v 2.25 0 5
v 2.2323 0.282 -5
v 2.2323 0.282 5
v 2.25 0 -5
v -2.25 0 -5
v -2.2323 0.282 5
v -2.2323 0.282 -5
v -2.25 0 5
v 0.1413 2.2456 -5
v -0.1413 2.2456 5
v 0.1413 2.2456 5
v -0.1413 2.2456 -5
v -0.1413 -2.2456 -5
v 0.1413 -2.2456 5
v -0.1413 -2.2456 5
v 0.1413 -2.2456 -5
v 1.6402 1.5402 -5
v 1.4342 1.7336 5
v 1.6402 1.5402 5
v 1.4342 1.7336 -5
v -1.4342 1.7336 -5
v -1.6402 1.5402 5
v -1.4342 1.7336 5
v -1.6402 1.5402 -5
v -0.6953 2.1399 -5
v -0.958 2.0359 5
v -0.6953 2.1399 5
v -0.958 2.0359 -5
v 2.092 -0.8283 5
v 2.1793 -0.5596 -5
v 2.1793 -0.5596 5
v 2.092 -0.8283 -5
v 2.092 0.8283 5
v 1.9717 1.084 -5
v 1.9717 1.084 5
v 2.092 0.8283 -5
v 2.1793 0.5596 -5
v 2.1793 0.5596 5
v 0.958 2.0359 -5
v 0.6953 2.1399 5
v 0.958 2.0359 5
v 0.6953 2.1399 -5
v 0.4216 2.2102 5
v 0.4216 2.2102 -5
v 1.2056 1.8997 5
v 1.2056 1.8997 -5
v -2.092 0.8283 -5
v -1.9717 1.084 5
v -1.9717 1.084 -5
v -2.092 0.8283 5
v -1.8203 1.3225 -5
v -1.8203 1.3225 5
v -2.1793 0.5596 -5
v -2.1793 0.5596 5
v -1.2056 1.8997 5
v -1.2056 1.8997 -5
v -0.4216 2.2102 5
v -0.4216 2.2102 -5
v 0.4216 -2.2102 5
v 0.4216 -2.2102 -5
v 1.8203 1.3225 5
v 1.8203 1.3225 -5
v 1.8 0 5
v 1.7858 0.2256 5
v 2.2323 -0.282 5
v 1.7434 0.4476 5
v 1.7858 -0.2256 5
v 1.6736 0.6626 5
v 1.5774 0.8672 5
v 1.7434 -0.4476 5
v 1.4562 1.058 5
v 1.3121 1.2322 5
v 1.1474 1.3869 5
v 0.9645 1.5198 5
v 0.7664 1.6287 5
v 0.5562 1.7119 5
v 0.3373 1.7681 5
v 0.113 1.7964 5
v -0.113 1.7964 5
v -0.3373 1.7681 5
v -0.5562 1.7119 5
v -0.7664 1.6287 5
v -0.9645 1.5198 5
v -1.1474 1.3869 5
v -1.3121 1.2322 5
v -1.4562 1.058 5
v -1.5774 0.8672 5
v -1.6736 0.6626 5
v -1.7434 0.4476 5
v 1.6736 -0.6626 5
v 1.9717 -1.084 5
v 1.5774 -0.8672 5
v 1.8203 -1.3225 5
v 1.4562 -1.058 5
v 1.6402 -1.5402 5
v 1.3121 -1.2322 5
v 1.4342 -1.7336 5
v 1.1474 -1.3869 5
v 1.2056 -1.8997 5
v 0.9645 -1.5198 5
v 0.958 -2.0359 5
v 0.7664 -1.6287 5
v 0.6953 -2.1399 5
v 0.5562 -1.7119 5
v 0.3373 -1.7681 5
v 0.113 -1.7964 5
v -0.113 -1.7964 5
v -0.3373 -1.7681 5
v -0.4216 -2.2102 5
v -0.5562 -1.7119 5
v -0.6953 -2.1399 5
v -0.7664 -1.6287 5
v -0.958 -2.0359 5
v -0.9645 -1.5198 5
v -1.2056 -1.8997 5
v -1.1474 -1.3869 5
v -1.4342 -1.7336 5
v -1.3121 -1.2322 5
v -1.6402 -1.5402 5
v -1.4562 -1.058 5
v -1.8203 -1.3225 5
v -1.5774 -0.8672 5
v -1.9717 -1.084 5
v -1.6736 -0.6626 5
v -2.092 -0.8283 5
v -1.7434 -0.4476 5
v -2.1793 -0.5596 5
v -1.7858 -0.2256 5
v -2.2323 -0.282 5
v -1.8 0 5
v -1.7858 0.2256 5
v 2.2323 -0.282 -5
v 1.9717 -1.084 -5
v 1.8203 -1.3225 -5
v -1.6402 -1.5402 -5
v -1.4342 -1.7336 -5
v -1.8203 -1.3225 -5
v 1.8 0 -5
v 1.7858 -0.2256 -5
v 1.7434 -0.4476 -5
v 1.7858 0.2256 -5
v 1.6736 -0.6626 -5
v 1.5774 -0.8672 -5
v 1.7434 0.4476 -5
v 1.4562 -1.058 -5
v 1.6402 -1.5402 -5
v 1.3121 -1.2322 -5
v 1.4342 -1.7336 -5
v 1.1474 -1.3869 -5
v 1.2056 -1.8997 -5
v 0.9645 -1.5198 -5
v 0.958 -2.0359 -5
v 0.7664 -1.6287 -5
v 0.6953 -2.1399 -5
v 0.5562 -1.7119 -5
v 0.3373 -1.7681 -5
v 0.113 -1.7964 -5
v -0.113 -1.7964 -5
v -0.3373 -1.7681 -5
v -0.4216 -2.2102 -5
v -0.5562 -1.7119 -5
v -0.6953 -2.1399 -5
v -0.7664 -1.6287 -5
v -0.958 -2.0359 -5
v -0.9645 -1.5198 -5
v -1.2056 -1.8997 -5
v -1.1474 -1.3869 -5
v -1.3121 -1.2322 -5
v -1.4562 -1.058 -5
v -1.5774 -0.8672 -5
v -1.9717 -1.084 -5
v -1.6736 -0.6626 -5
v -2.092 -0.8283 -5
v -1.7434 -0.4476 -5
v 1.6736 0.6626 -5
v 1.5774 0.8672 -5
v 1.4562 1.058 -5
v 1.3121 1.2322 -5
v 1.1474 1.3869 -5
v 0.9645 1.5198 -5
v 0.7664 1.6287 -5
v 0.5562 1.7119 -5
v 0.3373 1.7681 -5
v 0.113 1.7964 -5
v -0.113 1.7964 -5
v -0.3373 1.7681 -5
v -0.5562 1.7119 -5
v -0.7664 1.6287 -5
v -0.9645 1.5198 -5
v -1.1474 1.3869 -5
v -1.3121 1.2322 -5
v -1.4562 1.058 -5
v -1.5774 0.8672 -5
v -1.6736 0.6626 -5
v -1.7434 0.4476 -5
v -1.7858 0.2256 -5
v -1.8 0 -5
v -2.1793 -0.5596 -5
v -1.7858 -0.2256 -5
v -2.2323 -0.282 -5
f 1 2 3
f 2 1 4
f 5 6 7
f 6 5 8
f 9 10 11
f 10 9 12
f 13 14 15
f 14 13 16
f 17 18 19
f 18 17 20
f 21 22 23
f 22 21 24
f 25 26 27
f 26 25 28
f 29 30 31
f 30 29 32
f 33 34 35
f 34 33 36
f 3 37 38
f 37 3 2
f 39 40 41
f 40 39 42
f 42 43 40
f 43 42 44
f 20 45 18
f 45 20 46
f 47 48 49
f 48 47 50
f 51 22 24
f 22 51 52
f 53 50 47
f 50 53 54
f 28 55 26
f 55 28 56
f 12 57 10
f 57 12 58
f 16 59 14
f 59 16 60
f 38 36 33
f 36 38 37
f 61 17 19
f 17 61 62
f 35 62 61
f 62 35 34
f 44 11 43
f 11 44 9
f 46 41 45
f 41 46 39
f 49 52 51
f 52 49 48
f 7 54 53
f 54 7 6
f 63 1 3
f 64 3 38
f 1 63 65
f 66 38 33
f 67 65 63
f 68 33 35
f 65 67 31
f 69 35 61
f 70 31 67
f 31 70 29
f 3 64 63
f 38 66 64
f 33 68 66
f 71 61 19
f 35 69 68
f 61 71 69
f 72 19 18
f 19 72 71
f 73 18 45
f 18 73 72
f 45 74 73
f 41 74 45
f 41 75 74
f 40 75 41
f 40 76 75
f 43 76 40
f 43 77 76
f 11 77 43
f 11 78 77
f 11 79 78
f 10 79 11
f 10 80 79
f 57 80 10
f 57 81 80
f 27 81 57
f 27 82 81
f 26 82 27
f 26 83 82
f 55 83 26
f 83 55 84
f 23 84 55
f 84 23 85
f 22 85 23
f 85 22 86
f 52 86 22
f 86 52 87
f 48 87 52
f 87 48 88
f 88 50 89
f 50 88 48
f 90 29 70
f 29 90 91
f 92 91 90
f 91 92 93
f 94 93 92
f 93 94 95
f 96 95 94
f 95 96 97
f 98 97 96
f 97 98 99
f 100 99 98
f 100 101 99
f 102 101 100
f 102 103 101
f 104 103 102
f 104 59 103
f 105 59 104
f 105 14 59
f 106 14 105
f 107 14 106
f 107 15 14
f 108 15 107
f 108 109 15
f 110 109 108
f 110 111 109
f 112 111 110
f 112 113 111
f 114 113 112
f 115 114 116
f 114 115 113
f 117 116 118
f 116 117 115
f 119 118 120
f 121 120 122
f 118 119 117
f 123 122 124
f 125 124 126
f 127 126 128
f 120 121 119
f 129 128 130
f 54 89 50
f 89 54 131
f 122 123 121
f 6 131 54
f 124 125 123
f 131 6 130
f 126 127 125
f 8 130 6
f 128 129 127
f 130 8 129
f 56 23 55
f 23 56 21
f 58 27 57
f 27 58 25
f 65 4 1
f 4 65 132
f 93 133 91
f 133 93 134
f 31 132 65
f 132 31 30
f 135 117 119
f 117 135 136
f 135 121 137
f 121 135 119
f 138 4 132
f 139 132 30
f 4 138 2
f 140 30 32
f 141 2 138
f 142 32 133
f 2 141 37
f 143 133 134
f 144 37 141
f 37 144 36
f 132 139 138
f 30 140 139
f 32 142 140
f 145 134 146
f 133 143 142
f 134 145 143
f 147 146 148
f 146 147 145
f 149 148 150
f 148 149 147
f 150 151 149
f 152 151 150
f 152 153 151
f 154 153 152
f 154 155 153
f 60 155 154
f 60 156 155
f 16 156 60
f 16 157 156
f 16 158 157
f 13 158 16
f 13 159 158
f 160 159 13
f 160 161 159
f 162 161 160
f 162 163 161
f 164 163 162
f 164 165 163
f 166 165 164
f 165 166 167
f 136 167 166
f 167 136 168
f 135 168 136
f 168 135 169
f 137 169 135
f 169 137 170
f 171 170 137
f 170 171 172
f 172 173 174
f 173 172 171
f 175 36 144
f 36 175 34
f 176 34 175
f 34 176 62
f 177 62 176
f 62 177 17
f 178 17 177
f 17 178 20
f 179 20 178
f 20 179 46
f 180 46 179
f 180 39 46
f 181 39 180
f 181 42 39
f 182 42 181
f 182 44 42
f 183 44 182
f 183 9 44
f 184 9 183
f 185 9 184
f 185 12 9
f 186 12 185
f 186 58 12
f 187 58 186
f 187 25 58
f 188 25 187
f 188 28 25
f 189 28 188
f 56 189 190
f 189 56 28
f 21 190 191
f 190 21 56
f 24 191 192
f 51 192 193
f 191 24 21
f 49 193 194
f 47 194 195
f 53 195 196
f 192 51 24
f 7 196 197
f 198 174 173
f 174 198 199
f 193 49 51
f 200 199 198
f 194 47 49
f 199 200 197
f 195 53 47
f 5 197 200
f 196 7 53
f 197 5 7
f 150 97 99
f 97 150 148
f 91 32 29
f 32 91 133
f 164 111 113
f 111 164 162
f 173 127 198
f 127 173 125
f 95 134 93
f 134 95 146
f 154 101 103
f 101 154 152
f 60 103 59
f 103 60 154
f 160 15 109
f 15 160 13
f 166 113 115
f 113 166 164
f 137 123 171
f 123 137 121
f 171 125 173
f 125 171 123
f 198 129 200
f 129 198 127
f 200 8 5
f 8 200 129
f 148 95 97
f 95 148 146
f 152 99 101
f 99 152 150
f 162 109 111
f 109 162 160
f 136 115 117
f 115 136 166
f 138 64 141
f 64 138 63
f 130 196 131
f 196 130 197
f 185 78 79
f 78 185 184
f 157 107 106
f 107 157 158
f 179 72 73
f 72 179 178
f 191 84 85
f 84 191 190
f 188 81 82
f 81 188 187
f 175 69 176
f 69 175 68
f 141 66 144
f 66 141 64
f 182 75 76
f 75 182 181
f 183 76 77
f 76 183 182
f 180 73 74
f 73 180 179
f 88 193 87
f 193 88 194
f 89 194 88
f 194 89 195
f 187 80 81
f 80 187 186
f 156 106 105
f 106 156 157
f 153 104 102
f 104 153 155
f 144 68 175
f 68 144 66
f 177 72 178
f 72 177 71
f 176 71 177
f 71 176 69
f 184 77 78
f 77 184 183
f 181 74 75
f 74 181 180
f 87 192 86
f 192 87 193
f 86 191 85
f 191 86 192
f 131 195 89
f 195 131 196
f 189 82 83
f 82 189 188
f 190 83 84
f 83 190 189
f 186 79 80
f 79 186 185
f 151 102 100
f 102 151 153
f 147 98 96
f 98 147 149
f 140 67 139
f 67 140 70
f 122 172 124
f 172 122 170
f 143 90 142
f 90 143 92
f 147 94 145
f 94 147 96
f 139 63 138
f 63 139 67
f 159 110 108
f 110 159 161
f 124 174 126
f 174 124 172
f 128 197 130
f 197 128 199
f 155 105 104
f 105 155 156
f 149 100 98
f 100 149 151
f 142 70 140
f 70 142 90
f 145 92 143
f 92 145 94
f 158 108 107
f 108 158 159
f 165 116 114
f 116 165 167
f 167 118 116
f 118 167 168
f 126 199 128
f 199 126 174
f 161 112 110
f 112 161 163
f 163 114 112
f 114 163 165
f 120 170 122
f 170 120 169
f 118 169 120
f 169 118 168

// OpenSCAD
$fn = 50;


difference() {
	union() {
		translate(v = [0, 0, -5.0000000000]) {
			cylinder(h = 10, r = 2.2500000000);
		}
	}
	union() {
		translate(v = [0, 0, -100.0000000000]) {
			cylinder(h = 200, r = 1.8000000000);
		}
	}
}
